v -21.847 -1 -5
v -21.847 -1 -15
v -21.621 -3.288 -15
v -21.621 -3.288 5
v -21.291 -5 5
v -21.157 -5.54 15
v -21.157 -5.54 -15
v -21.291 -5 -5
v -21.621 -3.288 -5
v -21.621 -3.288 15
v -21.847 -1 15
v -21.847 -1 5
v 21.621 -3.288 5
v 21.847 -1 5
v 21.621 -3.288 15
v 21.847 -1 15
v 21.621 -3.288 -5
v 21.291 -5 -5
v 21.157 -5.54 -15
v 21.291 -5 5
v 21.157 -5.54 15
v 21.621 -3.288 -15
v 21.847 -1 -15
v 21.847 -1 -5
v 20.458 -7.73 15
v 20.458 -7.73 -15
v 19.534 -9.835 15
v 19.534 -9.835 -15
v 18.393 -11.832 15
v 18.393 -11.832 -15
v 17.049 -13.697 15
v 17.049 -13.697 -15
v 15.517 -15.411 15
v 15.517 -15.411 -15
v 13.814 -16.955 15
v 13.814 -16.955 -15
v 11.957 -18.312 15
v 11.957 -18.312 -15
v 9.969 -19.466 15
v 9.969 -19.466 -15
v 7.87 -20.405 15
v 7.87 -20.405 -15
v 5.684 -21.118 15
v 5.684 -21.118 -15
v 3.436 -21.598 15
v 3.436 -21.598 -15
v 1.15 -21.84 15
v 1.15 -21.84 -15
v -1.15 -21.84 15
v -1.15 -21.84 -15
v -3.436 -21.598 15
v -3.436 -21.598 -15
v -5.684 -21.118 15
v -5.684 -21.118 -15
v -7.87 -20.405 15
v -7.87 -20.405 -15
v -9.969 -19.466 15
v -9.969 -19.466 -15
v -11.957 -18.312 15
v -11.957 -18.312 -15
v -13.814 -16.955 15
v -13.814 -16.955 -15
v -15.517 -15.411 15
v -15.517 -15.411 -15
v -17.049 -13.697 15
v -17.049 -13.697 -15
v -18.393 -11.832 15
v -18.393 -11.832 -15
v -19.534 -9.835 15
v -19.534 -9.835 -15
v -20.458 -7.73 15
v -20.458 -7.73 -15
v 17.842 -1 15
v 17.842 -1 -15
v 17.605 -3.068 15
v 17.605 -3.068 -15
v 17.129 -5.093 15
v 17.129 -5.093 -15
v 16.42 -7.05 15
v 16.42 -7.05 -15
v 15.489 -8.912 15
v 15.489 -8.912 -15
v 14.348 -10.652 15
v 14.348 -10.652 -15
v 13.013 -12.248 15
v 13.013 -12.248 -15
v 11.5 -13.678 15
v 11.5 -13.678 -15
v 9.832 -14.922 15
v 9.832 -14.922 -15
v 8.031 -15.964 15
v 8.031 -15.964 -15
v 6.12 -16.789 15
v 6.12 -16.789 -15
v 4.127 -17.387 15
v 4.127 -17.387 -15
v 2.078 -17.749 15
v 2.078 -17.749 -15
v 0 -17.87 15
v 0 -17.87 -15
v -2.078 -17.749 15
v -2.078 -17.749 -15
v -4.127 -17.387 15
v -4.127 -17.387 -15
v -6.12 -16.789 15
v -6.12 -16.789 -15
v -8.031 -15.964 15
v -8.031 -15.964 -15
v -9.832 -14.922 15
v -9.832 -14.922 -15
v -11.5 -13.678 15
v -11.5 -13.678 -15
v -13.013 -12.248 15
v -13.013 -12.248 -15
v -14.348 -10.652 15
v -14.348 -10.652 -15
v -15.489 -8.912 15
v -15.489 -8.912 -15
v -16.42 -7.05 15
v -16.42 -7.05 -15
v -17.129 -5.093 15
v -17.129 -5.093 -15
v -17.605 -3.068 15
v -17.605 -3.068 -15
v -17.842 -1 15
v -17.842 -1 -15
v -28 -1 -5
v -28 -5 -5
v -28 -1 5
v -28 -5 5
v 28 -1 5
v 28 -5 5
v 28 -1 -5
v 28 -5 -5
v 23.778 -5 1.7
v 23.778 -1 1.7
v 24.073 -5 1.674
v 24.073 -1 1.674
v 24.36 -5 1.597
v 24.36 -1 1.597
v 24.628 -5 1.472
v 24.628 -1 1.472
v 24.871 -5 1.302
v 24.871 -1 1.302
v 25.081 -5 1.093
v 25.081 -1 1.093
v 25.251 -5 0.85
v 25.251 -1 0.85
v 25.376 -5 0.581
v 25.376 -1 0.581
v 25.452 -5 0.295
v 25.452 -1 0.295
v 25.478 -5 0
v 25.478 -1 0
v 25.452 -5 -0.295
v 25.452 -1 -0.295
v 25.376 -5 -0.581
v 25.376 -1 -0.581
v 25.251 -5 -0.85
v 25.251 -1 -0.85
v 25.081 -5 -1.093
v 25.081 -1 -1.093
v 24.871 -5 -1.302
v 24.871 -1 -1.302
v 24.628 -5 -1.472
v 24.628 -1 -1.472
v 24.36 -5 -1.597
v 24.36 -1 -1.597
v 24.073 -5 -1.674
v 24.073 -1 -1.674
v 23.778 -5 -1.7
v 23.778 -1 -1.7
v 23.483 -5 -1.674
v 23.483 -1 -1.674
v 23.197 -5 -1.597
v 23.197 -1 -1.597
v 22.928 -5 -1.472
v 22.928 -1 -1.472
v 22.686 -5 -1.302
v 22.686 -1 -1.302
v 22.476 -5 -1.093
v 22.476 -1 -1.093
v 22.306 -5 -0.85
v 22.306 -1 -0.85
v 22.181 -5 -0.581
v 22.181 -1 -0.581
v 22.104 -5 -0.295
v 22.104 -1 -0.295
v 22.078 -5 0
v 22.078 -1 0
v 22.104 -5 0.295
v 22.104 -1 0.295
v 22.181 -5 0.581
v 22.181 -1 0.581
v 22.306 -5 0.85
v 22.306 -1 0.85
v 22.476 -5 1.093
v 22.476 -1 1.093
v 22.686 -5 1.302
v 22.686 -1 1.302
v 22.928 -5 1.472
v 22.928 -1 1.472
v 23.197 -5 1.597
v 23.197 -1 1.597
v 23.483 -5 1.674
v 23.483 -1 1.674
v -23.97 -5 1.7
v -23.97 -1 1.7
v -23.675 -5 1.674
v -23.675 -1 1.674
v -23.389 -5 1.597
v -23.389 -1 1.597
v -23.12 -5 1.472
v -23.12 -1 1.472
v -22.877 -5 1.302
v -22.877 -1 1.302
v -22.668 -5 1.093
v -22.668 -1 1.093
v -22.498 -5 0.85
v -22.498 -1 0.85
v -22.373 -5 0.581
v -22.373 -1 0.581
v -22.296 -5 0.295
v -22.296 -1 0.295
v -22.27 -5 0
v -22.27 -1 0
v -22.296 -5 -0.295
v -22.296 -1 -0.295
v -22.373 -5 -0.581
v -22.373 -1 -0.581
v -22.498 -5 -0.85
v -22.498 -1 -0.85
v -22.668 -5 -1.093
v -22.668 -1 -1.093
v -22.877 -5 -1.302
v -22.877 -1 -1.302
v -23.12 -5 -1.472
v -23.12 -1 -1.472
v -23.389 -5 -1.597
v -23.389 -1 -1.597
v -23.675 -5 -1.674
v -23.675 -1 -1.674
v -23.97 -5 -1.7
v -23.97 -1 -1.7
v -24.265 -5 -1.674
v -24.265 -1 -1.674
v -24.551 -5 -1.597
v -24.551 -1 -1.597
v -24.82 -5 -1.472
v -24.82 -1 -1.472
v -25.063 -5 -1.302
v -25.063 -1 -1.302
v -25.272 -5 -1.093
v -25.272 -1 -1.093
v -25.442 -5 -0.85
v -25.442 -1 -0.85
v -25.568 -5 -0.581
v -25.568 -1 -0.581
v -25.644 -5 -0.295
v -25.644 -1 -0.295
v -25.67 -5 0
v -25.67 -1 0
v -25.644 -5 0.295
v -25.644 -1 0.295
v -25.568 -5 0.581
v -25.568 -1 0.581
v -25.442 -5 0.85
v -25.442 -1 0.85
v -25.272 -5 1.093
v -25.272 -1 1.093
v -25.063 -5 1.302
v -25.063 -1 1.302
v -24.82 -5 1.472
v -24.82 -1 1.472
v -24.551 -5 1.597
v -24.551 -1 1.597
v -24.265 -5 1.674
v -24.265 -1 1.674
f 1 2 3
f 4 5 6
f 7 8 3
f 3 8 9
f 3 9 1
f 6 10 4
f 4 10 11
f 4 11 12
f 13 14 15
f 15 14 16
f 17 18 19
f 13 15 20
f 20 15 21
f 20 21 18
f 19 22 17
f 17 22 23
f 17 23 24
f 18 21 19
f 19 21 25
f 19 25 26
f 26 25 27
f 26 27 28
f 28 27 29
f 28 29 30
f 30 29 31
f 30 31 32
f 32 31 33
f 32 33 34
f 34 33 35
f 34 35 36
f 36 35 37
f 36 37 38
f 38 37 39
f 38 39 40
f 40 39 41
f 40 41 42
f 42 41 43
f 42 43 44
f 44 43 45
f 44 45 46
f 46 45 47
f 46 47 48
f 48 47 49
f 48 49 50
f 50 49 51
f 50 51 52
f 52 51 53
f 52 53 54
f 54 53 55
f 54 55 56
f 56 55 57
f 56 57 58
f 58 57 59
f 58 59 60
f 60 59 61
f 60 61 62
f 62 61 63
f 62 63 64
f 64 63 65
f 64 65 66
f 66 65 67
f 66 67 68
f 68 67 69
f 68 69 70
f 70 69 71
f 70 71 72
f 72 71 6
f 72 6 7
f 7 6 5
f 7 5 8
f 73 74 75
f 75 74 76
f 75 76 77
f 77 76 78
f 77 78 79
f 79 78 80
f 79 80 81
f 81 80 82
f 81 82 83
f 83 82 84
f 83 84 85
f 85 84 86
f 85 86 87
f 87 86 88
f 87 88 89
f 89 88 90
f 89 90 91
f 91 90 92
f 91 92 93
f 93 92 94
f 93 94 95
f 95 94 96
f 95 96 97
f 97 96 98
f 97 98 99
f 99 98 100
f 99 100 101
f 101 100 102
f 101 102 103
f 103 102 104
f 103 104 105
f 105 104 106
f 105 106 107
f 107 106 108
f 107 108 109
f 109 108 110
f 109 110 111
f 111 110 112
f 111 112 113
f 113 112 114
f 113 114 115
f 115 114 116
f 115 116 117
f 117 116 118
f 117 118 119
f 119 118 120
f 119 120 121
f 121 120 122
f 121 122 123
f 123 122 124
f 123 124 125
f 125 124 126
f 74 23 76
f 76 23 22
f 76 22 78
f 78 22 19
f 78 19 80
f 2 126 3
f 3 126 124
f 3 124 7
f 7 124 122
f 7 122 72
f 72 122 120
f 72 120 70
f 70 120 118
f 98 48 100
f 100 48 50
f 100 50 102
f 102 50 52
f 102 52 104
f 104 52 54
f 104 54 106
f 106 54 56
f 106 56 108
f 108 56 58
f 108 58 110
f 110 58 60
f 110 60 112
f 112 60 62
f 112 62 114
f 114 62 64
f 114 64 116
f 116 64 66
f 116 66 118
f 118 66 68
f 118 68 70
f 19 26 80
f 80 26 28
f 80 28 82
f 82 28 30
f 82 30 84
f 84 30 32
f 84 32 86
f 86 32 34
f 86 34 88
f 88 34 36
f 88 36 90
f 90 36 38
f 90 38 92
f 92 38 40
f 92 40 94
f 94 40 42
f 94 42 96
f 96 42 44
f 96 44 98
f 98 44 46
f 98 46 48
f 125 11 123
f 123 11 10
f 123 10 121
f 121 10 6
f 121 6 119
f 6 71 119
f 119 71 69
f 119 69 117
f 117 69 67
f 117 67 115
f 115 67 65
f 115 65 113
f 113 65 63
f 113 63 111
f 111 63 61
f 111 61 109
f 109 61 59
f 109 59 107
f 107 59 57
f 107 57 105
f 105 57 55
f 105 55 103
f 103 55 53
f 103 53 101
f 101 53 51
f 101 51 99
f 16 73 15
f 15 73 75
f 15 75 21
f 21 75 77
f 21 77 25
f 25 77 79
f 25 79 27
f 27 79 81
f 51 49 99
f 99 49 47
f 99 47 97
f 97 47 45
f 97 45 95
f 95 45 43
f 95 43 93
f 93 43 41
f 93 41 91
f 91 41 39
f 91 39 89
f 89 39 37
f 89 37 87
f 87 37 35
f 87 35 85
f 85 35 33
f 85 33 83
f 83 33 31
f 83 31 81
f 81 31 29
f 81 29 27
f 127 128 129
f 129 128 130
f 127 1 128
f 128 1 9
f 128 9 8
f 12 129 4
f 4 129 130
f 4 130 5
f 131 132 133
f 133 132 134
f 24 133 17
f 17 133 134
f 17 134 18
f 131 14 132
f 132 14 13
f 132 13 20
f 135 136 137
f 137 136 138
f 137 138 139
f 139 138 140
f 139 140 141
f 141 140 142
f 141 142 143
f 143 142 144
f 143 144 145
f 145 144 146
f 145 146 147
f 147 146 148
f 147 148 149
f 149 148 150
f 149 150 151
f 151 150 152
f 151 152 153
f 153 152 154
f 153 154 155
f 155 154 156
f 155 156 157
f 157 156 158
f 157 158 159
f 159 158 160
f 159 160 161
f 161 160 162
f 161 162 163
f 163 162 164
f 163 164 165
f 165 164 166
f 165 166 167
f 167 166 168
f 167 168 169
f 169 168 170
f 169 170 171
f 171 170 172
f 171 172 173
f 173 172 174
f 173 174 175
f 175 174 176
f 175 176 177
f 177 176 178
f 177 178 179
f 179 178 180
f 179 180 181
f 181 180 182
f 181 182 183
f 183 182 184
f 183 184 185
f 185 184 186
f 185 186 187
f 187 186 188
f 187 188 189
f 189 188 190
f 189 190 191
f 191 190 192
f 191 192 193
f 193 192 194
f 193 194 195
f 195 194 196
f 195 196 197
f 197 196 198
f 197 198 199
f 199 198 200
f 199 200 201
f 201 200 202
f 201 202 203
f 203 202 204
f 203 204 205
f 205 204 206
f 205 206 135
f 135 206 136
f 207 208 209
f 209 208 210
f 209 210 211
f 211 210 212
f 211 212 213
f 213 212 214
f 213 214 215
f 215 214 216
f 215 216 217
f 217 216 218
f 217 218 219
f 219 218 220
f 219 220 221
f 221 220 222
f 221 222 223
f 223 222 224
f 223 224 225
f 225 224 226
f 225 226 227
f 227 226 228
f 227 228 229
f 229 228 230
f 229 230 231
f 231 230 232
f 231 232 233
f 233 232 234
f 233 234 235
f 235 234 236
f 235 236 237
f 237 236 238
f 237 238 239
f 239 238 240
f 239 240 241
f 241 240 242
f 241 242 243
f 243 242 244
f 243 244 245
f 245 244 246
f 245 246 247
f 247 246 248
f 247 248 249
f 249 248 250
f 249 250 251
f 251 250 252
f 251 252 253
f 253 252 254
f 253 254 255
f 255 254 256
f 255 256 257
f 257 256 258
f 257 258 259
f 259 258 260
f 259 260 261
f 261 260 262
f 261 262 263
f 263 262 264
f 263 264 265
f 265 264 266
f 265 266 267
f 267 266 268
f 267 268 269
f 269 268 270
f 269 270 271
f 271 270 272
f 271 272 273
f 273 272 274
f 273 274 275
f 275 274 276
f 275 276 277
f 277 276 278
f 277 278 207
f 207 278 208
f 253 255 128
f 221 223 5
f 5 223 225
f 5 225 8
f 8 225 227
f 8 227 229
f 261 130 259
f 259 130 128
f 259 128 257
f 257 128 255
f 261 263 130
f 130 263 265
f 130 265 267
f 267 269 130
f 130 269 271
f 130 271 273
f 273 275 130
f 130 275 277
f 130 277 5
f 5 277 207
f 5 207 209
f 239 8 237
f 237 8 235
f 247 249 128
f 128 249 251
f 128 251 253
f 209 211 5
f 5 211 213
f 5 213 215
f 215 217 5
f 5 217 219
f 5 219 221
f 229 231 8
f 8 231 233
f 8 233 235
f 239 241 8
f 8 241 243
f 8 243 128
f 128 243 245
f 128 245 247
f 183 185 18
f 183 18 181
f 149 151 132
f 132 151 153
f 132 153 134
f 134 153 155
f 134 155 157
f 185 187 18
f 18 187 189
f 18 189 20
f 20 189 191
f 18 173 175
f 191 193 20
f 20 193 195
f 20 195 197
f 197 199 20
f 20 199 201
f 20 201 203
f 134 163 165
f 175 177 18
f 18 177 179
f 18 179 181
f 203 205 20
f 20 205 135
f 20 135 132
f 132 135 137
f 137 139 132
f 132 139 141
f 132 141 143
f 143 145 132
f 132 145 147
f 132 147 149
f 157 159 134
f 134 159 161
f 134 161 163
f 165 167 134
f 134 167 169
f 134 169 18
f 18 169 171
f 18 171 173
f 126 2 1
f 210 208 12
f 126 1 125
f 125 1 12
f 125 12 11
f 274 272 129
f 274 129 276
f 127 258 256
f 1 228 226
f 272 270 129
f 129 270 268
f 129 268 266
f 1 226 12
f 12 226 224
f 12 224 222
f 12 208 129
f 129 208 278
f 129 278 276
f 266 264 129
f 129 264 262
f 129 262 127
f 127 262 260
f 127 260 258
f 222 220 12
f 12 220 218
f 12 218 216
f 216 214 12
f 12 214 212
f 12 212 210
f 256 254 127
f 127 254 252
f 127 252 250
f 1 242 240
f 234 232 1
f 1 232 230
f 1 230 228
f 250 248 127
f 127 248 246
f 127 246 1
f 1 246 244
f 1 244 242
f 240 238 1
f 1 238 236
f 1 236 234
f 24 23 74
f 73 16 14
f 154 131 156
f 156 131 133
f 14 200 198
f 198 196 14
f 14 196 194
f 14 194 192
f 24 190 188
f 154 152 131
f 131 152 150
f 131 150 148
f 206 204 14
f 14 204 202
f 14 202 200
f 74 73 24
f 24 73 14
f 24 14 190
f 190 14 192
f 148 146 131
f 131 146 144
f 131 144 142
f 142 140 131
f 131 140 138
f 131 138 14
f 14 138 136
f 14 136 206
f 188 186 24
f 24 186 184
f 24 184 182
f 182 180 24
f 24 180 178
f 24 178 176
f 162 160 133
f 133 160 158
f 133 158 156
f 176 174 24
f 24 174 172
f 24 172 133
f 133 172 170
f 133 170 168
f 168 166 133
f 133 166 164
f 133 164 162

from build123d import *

# Parameters (mm, degrees)
SKETCH1_W                = 4
SKETCH1_H                = 30
REVOLVE1_ANGLE           = 180
BOSS_EXTRUDE3_DEPTH      = 5
BOSS_EXTRUDE3_DEPTH_BACK = 5
SKETCH6_W                = 8.13
SKETCH6_H                = 5
M3_CLEARANCE_HOLE1_D     = 3.4
M3_CLEARANCE_HOLE1_DEPTH = 8.87
M3_CLEARANCE_HOLE1_TIP   = 1.021463052
SKETCH11_W               = 62.08504313
SKETCH11_H               = 41.873291452
CUT_EXTRUDE1_DEPTH       = 1


with BuildPart() as part:
    # Sketch1 → Revolve1 (revolve)
    with BuildSketch(Plane(origin=(0, 0, 0), x_dir=(1, 0, 0), z_dir=(0, 1, 0))):
        with Locations((-19.87, 0)):
            Rectangle(SKETCH1_W, SKETCH1_H)
    revolve(axis=Axis((0, 0, -19.621046531), (0, 0, 1)), revolution_arc=REVOLVE1_ANGLE)

    # Sketch6 → Boss-Extrude3 (add, two sides: drawn at the far end of the back side and taken through both)
    with BuildSketch(Plane.XY.offset(-BOSS_EXTRUDE3_DEPTH_BACK)):
        with Locations((-23.935, -2.5)):
            Rectangle(SKETCH6_W, SKETCH6_H)
        with Locations((23.935, -2.5)):
            Rectangle(SKETCH6_W, SKETCH6_H)
    extrude(amount=BOSS_EXTRUDE3_DEPTH + BOSS_EXTRUDE3_DEPTH_BACK)

    # M3 Clearance Hole1
    with Locations(Plane(origin=(0, 0, 0), x_dir=(1, 0, 0), z_dir=(0, 1, 0))):
        with Locations((-23.970037453, 0), (23.778277154, 0)):
            Hole(M3_CLEARANCE_HOLE1_D / 2, depth=M3_CLEARANCE_HOLE1_DEPTH)
            with Locations((0, 0, -(M3_CLEARANCE_HOLE1_DEPTH + M3_CLEARANCE_HOLE1_TIP / 2))):  # 118° drill point
                Cone(0, M3_CLEARANCE_HOLE1_D / 2, M3_CLEARANCE_HOLE1_TIP, mode=Mode.SUBTRACT)

    # Sketch11 → Cut-Extrude1 (cut)
    with BuildSketch(Plane(origin=(0, 0, 0), x_dir=(1, 0, 0), z_dir=(0, 1, 0))):
        Rectangle(SKETCH11_W, SKETCH11_H)
    extrude(amount=-CUT_EXTRUDE1_DEPTH, mode=Mode.SUBTRACT)


solid = part.part
